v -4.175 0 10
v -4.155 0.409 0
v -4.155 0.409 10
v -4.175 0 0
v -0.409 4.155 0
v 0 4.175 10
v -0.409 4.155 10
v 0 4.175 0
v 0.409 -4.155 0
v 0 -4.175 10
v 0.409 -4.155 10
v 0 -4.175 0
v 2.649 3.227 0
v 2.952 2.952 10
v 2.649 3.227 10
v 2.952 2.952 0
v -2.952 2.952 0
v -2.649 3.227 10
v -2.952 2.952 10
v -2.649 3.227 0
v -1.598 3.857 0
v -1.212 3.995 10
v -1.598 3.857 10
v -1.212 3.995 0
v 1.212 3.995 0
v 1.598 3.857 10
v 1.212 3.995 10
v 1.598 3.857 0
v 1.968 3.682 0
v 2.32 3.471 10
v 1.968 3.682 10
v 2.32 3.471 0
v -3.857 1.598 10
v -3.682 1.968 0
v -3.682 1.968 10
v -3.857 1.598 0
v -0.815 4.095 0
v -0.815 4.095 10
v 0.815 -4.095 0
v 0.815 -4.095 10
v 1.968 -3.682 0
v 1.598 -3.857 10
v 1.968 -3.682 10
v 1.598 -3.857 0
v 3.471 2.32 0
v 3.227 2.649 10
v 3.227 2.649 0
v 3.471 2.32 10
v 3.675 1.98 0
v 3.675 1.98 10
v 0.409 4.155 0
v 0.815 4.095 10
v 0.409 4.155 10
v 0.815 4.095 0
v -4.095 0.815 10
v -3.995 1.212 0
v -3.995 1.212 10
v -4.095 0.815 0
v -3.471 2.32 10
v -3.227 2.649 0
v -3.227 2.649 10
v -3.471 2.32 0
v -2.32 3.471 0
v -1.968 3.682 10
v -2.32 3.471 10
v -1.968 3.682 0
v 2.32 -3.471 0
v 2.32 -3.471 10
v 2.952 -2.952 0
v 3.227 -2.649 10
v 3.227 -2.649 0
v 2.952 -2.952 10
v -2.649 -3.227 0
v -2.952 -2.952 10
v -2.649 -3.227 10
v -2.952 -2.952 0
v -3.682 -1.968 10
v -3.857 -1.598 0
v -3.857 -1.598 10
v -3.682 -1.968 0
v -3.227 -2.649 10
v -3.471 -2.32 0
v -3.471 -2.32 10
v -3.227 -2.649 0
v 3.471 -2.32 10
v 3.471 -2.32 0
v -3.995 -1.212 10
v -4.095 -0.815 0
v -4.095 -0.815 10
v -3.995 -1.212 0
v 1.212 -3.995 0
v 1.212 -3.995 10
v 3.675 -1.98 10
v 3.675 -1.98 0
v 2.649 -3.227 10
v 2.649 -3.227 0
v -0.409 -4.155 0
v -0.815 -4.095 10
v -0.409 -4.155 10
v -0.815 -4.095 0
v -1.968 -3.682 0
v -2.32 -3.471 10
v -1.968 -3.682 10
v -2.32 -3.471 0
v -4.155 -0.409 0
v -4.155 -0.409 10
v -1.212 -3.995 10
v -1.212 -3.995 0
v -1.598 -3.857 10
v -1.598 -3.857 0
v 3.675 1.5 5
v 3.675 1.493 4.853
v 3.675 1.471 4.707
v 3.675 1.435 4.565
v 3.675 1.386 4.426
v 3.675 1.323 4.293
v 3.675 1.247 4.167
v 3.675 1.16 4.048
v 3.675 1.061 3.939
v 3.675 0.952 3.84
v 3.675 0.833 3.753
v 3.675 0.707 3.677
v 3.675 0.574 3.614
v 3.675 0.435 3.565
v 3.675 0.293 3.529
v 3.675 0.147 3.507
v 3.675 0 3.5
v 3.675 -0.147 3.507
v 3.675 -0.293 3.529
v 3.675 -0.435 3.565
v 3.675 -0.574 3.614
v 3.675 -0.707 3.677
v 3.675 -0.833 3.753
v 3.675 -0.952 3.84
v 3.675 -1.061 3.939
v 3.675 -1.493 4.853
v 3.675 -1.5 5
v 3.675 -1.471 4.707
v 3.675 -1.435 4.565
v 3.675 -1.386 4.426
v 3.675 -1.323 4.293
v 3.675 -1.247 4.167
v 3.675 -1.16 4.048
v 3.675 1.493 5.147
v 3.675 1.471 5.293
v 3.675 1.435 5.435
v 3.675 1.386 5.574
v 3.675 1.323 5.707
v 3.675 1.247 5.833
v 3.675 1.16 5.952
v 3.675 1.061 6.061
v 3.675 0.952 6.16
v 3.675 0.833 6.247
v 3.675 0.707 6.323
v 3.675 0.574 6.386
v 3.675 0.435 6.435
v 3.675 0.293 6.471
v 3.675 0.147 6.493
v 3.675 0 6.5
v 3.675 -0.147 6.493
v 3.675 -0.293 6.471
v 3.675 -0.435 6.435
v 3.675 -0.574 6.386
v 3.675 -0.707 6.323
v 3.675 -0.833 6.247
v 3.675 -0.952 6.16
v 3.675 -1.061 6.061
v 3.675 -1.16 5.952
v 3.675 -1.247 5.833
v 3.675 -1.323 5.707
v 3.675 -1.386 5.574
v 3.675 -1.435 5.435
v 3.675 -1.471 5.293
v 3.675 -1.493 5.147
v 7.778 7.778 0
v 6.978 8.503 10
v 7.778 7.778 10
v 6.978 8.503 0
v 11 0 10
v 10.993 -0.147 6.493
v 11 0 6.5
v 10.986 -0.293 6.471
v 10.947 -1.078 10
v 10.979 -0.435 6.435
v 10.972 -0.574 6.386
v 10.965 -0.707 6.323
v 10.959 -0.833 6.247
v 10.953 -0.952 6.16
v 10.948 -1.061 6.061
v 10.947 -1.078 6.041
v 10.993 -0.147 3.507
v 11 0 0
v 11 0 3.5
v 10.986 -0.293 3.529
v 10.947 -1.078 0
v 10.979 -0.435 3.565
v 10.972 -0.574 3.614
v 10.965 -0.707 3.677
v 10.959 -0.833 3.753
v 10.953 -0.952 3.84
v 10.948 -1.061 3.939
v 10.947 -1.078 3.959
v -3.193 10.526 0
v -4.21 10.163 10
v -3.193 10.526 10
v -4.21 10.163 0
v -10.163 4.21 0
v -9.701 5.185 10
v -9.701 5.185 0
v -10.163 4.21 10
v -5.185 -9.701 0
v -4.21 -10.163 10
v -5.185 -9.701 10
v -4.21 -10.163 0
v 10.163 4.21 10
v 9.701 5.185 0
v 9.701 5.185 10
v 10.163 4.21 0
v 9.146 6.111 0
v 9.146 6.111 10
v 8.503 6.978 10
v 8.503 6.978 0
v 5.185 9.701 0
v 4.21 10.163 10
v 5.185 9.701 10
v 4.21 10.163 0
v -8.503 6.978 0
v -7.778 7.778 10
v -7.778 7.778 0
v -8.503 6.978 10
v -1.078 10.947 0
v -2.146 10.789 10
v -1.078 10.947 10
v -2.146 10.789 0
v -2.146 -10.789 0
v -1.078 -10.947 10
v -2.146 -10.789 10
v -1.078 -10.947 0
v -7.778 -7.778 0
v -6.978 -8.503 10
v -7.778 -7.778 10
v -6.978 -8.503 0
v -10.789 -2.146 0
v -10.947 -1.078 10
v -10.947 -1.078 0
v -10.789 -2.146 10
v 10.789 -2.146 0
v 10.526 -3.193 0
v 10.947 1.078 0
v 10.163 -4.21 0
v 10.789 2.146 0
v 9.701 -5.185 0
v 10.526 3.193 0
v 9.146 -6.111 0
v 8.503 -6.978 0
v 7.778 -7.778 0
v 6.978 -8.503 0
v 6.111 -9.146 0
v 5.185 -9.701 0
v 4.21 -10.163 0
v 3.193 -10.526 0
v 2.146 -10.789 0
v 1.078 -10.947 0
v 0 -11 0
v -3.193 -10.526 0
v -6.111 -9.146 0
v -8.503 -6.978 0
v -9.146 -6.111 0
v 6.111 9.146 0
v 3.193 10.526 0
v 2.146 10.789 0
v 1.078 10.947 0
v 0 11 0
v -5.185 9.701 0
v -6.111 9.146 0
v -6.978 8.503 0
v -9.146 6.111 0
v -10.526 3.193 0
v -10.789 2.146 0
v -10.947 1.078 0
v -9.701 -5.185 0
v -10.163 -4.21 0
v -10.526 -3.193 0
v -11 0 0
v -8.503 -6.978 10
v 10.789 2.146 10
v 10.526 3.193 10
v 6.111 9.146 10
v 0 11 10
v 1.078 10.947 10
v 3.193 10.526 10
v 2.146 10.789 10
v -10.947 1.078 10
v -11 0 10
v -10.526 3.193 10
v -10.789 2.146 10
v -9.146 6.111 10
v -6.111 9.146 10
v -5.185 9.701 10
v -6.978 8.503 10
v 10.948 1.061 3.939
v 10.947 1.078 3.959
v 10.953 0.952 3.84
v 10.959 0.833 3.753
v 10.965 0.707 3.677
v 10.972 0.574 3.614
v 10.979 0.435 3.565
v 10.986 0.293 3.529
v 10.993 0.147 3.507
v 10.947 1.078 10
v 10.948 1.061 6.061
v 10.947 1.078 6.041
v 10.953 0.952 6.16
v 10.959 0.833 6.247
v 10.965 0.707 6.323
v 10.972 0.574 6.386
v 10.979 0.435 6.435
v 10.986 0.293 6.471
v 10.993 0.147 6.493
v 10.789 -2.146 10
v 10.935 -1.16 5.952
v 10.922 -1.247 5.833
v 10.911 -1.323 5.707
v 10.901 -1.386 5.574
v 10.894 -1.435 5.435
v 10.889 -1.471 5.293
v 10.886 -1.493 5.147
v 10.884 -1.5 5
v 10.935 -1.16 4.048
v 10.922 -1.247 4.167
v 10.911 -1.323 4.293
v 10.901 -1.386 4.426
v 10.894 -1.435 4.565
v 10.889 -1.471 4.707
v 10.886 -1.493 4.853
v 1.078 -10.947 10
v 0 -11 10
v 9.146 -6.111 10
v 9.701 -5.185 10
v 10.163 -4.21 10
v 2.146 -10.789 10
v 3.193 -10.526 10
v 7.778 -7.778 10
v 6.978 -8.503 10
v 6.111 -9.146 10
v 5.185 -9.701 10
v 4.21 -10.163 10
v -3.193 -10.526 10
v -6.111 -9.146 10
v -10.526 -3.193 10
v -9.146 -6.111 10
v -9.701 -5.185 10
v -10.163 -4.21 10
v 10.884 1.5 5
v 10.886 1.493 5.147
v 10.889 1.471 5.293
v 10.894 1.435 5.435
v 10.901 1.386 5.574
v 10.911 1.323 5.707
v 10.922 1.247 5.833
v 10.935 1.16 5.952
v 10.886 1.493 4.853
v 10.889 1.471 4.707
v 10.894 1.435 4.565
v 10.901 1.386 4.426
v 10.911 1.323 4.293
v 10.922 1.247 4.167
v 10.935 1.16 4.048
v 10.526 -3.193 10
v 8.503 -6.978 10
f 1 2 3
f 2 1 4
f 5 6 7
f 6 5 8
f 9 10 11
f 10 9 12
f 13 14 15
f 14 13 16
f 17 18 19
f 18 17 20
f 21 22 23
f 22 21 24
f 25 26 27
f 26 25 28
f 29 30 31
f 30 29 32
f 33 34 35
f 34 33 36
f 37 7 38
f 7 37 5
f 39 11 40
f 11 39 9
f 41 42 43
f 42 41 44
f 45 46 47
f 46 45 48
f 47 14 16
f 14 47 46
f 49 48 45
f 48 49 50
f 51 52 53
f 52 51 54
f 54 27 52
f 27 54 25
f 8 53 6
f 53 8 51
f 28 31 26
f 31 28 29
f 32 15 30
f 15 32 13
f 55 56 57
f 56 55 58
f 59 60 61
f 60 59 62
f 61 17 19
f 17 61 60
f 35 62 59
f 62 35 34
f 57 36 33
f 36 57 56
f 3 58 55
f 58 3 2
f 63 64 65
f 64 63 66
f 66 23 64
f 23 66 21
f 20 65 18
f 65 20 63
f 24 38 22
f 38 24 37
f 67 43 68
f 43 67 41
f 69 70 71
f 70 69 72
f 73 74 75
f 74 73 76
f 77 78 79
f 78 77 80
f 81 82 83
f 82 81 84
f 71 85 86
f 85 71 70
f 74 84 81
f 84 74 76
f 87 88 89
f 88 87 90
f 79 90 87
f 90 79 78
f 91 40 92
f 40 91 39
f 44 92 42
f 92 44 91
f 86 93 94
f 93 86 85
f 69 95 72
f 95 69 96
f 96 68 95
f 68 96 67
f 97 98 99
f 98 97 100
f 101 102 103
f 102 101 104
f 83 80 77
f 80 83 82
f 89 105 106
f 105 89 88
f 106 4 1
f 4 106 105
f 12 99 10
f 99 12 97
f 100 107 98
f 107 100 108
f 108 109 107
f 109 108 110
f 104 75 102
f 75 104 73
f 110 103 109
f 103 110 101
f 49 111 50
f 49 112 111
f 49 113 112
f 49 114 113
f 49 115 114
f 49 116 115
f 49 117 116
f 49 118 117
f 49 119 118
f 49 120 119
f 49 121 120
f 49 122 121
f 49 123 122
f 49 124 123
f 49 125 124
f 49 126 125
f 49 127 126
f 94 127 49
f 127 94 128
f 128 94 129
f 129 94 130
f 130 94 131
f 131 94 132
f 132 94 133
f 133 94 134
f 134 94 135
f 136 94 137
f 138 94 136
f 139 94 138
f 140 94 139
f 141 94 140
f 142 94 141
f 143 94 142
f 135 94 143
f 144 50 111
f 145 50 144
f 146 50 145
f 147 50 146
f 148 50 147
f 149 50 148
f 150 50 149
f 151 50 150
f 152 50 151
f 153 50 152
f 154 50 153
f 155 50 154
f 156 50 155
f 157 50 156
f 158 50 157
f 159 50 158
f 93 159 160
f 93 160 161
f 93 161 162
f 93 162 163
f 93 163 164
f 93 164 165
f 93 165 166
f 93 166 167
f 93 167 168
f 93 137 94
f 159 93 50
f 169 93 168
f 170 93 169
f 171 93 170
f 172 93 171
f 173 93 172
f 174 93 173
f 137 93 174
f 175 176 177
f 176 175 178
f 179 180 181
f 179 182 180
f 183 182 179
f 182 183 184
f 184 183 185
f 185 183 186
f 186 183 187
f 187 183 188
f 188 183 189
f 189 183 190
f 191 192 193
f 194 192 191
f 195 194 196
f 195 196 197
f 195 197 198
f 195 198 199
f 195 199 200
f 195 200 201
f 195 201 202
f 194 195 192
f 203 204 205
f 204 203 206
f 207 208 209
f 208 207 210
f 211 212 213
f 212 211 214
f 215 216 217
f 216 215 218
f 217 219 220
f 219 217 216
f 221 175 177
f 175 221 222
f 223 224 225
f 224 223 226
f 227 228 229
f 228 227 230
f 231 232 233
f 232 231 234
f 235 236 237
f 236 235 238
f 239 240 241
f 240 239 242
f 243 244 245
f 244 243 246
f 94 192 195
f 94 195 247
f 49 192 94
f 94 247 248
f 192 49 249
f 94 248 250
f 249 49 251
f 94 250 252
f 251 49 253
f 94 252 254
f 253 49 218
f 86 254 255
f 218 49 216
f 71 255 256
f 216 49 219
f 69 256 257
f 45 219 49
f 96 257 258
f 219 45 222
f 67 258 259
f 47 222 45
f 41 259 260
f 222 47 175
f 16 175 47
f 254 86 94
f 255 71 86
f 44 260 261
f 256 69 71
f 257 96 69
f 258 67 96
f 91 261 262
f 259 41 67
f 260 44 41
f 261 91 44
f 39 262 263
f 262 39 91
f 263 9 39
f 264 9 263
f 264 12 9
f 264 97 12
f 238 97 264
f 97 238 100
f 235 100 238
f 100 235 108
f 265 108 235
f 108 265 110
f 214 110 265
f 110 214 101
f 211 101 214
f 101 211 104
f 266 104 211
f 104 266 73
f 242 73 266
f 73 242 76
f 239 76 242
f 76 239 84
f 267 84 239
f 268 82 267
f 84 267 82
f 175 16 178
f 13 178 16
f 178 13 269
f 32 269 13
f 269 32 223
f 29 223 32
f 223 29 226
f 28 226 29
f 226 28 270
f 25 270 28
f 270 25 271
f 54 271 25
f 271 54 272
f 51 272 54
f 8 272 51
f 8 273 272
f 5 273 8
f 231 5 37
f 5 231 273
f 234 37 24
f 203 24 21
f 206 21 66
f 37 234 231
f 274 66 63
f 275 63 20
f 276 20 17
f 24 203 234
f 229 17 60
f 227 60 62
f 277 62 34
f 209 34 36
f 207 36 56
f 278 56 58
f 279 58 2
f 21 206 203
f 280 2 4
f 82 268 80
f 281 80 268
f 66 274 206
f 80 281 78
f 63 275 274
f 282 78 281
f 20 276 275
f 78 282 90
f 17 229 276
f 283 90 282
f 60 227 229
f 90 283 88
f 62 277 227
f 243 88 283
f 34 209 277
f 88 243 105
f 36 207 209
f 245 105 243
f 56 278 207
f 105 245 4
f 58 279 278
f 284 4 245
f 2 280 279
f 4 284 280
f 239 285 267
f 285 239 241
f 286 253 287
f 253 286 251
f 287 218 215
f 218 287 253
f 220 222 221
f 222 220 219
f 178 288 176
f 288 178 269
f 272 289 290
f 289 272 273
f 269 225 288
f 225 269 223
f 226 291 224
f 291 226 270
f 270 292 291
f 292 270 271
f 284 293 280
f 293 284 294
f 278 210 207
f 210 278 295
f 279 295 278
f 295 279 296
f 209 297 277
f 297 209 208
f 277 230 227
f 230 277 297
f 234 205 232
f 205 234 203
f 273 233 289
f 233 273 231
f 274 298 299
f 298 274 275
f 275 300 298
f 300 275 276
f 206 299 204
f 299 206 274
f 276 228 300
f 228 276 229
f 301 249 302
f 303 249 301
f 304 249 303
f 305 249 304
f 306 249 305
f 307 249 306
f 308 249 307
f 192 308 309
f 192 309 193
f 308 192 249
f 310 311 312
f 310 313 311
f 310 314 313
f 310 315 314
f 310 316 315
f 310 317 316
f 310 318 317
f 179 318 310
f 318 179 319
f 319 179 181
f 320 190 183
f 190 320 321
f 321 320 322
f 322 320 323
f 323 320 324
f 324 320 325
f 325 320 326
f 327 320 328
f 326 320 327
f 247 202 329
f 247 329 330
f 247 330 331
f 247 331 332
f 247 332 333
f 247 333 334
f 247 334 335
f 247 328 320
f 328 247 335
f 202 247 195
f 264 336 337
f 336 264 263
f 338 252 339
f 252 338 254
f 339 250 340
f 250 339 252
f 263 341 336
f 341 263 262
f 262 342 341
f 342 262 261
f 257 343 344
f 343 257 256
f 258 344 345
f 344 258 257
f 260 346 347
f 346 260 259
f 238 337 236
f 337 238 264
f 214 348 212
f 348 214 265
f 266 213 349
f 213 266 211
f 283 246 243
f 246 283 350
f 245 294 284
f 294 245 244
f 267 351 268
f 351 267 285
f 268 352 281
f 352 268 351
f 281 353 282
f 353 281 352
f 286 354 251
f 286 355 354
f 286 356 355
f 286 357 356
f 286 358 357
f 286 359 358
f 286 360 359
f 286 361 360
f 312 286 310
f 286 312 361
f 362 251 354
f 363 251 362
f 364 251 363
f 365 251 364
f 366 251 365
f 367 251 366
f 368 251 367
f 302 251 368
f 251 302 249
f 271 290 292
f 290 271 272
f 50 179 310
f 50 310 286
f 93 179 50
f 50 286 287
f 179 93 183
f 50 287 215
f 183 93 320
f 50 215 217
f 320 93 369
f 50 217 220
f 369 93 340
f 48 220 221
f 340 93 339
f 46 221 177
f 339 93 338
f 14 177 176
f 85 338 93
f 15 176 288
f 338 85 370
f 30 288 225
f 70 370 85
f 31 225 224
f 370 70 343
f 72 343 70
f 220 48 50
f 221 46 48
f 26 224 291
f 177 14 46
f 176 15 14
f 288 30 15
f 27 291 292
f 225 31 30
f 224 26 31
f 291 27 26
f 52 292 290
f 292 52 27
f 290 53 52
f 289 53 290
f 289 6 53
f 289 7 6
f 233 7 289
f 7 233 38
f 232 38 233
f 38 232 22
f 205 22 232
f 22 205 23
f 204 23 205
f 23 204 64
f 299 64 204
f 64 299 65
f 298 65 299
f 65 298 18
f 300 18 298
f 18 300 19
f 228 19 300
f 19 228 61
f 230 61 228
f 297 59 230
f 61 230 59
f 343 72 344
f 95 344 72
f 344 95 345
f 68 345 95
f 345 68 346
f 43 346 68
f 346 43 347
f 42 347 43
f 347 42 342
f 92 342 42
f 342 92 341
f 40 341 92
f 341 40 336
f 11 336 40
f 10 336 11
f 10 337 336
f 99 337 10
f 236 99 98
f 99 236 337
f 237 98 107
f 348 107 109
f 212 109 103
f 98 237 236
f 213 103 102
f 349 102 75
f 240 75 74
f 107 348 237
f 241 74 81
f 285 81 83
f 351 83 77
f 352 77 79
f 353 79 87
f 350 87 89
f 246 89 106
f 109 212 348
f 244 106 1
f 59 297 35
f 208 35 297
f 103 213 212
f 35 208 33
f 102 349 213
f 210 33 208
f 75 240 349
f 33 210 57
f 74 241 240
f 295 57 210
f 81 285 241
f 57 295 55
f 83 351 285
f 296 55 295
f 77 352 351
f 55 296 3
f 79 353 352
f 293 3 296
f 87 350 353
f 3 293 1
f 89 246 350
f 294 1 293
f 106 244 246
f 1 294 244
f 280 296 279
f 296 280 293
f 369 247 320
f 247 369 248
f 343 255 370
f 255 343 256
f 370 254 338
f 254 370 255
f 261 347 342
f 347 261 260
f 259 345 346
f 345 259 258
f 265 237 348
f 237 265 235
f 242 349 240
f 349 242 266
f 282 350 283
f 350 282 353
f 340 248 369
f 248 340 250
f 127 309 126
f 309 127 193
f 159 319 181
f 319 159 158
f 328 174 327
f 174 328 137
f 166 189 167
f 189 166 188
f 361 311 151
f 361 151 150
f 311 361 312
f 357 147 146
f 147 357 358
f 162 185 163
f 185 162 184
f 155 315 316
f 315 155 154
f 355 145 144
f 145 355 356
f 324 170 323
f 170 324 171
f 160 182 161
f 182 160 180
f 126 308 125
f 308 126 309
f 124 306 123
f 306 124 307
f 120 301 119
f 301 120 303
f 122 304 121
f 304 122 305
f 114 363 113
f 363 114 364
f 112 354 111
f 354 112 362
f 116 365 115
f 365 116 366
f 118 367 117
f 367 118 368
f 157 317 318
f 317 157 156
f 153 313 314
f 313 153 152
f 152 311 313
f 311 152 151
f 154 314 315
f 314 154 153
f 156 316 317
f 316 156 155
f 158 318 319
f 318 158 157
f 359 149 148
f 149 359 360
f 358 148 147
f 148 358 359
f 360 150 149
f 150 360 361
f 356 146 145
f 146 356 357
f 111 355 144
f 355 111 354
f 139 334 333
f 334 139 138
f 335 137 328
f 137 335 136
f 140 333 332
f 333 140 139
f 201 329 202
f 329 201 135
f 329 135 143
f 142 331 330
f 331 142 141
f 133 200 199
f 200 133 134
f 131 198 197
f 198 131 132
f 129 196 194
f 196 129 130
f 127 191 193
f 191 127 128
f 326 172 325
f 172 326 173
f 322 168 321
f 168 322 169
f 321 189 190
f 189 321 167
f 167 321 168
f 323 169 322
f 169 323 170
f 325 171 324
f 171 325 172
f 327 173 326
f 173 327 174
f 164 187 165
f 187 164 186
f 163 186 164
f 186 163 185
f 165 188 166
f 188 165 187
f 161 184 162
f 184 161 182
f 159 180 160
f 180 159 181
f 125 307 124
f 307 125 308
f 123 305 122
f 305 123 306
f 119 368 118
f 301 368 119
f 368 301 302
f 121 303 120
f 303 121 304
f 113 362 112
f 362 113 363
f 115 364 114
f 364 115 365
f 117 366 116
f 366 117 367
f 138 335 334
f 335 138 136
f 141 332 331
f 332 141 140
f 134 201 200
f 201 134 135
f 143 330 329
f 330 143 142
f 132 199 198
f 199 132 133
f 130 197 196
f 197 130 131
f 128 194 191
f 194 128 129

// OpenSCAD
// file: parameters.scad
// =============================================================================
// Gen-CA — nightly 2026-10-13 (physics_scorer, honest magpylib watts)
// Break the plate limit instead of the physics: the 2026-10-11 scans showed watts keep rising with machine size, but Ø194 was the largest one-piece stator/rotor set that fits one 410 mm plate. Gen-CA makes the steel disc the structural rotor and prints the magnet carrier as 8 bolt-on arcs per rotor plus a separate D-flat hub, opens the stator centre, and prints the 12 bobbin bases in place inside their stator bays, so a much bigger R84 / Ø226 machine (bobbins r64–104, 4.95 mm copper, 7.55 mm magnet gap) still packs on ONE plate.
// Clocking 0 deg (magnets N facing S) + D-flat keyed bore + index notch + flip-symmetric hole map.
// Windable 2-piece bobbin; turns = physics_scorer turns_fit; copper only between flanges.
// Steel back-iron: 2× Ø194 × 4.76 mm (3/16") mild-steel discs (steel_backiron_disc.dxf); magnets sit ON the steel
// (through-pockets) -> score with --back-iron. Night 2026-10-13.
// =============================================================================
topology            = "dual_rotor";

// --- Wire / winding (physics_scorer winding-fit) -------------------------------
wire_awg            = 26;
wire_od             = 0.45;     // insulated OD mm (bare 0.405)
fill_realistic      = 0.65;     // insulated-wire area / window (DENSE layered wind with a jig; scorer cap 0.65)
turns               = 366;       // = physics_scorer turns_fit (do NOT raise)
coil_former_type    = "bobbin";
coil_core_inset     = 18.10;     // radial copper build: hub = copper boundary inset by this
wind_build_axial    = 0.0;      // nothing proud of the flanges
wind_build_radial   = 0.0;

// --- Bobbin (base + lid) ---------------------------------------------------------
coil_id_r           = 64.00;    // copper boundary sector
coil_od_r           = 104.00;
span_deg            = 26.87;    // = pitch - 2*asin((wall+0.85)/coil_id_r) -> >=1.2 mm stator web
former_web          = 4.95;     // copper height between flanges (TALL copper: steel keeps Bz up)
flange_t            = 0.80;     // >= 0.8 mm FDM wall rule (tall winds push on the flanges)
wall                = 0.80;     // flange lip beyond copper
former_bare_h       = former_web + 2 * flange_t;
coil_envelope_h     = former_bare_h + 2 * wind_build_axial;
tab_w               = 7.0;
tab_len             = 7.0;
tab_h               = former_bare_h / 2;
pin_d               = 1.9;      // 1.75 mm filament locating pin
coil_mount_r        = coil_od_r + 0.2 + 4.0;
lead_y              = 1.6;
lead_slot_w         = 0.9;
lead_groove_d       = 0.6;

// --- Gap -------------------------------------------------------------------------
run_clear           = 0.50;     // rotor face -> flange
gap_spacer_h        = run_clear + wind_build_axial;
m2m                 = coil_envelope_h + 2 * run_clear;   // rotor face to rotor face (= gap_sleeve length)

// --- Stator ----------------------------------------------------------------------
coil_stations       = 12;
bay_clear           = 0.35;     // 0.35 mm: bobbin BASES print IN PLACE inside the stator bays (print-in-place gap), then pop out
stator_thick        = former_bare_h;                        // bobbins flush both faces
stator_od           = 226;
shaft_clear_stator  = 14.0;     // stator is static; gap sleeve OD 12 spins inside
stator_ir           = 58.85;    // ANNULAR stator: open centre (nested one-plate pack); inner rim 4.0 mm

// --- Rotor(s) --------------------------------------------------------------------
magnet_Br           = 1.43;     // N52
magnet_d_large      = 20.0;
magnet_h_large      = 5.0;      // one O20x5 per pocket
magnet_h_small      = 5.0;      // unused: no O5 pockets in this kit
halbach_magnetisation = "none";  // NO O5 assist magnets in this kit (scan: they lower the 4-pole score)
rotor_b_same_axis   = true;     // same-index magnets share one axis: N faces S across the gap
large_pocket_d      = 20.3;
small_pocket_d      = 5.3;
pocket_h            = 5.00;     // THROUGH the carrier: magnet back face sits on the steel disc (FLUSH seat: carrier = magnet height, magnet face level with the rotor face)
large_n             = 8;
R_large             = 84.0;
small_r_list        = [];       // no O5 pockets
carrier_od          = 194.0;
ring_ir             = 70.85;    // RING rotor: PLA magnet ring r ring_ir..carrier_od/2 (steel disc = structural rotor)
hub_flange_od       = 74.0;     // separate rotor_hub flange (inside the ring, flush with the ring face)
csk_d               = 6.6;      // M3 countersunk head pocket (ISO 10642 head 6.0 nominal) on the stator face
csk_depth           = 1.55;     // = (csk_d - m3_clear) / 2: 90 deg cone; head sits 0.3 mm below the face
n_seg               = 8;        // magnet-carrier ARCS per rotor (segmented carrier)
seg_deg             = 360 / n_seg;
seg_start           = -22.5;   // arc edge angle (between pocket 0 and its clamp bolt)
seg_kerf_deg        = 0.4;      // gap between neighbouring arcs on the steel
carrier_thick       = pocket_h;
hub_h               = 12.0;     // > steel_t + insert: radial set-screw clears the steel
hub_od              = 24.0;     // slim hub so the M4 brace rods fit at R~18 inside the coil ring
hub_insert_d        = 4.0;      // M3 heat-set insert, radial, bears on the D-flat
rotor_b_offset_deg  = 0.0;      // CLOCKING: magnets directly opposite
shaft_key           = "dflat";
dflat_depth         = 0.5;      // 8 mm shaft with 0.5 mm flat (7.5 across flat)
index_notch_d       = 3.0;

// --- Steel back-iron (buyable laser-cut) -------------------------------------------
steel_t             = 4.76;      // mild steel thickness (image method ignores it; sized from steel_flux.py so the return path stays well below saturation)
steel_center_hole   = 26.0;     // slips over the rotor hub (OD 24)
steel_od            = carrier_od;   // steel disc OD = rotor carrier OD

// --- Modular MAX interface ----------------------------------------------------------
shaft_bore          = 8.35;
dflat_x             = 4.0 - dflat_depth + (shaft_bore - 8.0) / 2;
bearing_d           = 21.85;
bearing_h           = 7.2;
m3_clear            = 3.5;
bolt_r_inner        = 30.0;     // M3 steel-disc clamp bolts (inside the magnet ring)
bolt_n_inner        = 4;
bolt_inner_angles   = [0, 90, 180, 270];
bolt_r_outer        = 84.0;     // second M3 steel-disc clamp ring
bolt_outer_angles   = [22.5, 67.5, 112.5, 157.5, 202.5, 247.5, 292.5, 337.5];
flange_bolt_r       = 107.5;     // frame rods: OUTSIDE the rotor OD (rotors spin inside them)
flange_bolt_n       = 4;
flange_bolt_offset  = 45.00;    // between coil stations -> never cuts a lead groove/tab
brace_r             = 18.0;
brace_d             = 4.3;      // temporary M4 jack rods (assembly only)
brace_n             = 4;
brace_angles        = [45, 135, 225, 315];          // flip-symmetric

spacer_pad_od       = 14.0;
spacer_pad_id       = m3_clear;
endbell_od          = 225.0;
endbell_thick       = 8.0;
endbell_shaft_clear = 10.0;
collar_h            = 10.0;
standoff_od         = 9.0;
frame_standoff_h    = run_clear + carrier_thick + hub_h + collar_h + 2.0;
sleeve_od           = 12.0;
plate_max_mm        = 410;

$fn = 64;
// main file
// Gen-CA — shaft collar with D-flat bore (set screw bears on the flat); print x4
include <parameters.scad>;
$fn = 64;
// D-flat keyed bore: flat faces +X (angle 0 = magnet pocket 0 = index notch)
module dflat_bore(h) {
    intersection() {
        cylinder(d=shaft_bore, h=h);
        translate([-shaft_bore, -shaft_bore, 0]) cube([shaft_bore + dflat_x, 2*shaft_bore, h]);
    }
}

od = 22; h = collar_h; set_d = 3.0;
difference() {
    cylinder(d=od, h=h);
    translate([0, 0, -0.1]) dflat_bore(h + 0.2);
    translate([0, 0, h/2]) rotate([0, 90, 0]) cylinder(d=set_d, h=od);
}
